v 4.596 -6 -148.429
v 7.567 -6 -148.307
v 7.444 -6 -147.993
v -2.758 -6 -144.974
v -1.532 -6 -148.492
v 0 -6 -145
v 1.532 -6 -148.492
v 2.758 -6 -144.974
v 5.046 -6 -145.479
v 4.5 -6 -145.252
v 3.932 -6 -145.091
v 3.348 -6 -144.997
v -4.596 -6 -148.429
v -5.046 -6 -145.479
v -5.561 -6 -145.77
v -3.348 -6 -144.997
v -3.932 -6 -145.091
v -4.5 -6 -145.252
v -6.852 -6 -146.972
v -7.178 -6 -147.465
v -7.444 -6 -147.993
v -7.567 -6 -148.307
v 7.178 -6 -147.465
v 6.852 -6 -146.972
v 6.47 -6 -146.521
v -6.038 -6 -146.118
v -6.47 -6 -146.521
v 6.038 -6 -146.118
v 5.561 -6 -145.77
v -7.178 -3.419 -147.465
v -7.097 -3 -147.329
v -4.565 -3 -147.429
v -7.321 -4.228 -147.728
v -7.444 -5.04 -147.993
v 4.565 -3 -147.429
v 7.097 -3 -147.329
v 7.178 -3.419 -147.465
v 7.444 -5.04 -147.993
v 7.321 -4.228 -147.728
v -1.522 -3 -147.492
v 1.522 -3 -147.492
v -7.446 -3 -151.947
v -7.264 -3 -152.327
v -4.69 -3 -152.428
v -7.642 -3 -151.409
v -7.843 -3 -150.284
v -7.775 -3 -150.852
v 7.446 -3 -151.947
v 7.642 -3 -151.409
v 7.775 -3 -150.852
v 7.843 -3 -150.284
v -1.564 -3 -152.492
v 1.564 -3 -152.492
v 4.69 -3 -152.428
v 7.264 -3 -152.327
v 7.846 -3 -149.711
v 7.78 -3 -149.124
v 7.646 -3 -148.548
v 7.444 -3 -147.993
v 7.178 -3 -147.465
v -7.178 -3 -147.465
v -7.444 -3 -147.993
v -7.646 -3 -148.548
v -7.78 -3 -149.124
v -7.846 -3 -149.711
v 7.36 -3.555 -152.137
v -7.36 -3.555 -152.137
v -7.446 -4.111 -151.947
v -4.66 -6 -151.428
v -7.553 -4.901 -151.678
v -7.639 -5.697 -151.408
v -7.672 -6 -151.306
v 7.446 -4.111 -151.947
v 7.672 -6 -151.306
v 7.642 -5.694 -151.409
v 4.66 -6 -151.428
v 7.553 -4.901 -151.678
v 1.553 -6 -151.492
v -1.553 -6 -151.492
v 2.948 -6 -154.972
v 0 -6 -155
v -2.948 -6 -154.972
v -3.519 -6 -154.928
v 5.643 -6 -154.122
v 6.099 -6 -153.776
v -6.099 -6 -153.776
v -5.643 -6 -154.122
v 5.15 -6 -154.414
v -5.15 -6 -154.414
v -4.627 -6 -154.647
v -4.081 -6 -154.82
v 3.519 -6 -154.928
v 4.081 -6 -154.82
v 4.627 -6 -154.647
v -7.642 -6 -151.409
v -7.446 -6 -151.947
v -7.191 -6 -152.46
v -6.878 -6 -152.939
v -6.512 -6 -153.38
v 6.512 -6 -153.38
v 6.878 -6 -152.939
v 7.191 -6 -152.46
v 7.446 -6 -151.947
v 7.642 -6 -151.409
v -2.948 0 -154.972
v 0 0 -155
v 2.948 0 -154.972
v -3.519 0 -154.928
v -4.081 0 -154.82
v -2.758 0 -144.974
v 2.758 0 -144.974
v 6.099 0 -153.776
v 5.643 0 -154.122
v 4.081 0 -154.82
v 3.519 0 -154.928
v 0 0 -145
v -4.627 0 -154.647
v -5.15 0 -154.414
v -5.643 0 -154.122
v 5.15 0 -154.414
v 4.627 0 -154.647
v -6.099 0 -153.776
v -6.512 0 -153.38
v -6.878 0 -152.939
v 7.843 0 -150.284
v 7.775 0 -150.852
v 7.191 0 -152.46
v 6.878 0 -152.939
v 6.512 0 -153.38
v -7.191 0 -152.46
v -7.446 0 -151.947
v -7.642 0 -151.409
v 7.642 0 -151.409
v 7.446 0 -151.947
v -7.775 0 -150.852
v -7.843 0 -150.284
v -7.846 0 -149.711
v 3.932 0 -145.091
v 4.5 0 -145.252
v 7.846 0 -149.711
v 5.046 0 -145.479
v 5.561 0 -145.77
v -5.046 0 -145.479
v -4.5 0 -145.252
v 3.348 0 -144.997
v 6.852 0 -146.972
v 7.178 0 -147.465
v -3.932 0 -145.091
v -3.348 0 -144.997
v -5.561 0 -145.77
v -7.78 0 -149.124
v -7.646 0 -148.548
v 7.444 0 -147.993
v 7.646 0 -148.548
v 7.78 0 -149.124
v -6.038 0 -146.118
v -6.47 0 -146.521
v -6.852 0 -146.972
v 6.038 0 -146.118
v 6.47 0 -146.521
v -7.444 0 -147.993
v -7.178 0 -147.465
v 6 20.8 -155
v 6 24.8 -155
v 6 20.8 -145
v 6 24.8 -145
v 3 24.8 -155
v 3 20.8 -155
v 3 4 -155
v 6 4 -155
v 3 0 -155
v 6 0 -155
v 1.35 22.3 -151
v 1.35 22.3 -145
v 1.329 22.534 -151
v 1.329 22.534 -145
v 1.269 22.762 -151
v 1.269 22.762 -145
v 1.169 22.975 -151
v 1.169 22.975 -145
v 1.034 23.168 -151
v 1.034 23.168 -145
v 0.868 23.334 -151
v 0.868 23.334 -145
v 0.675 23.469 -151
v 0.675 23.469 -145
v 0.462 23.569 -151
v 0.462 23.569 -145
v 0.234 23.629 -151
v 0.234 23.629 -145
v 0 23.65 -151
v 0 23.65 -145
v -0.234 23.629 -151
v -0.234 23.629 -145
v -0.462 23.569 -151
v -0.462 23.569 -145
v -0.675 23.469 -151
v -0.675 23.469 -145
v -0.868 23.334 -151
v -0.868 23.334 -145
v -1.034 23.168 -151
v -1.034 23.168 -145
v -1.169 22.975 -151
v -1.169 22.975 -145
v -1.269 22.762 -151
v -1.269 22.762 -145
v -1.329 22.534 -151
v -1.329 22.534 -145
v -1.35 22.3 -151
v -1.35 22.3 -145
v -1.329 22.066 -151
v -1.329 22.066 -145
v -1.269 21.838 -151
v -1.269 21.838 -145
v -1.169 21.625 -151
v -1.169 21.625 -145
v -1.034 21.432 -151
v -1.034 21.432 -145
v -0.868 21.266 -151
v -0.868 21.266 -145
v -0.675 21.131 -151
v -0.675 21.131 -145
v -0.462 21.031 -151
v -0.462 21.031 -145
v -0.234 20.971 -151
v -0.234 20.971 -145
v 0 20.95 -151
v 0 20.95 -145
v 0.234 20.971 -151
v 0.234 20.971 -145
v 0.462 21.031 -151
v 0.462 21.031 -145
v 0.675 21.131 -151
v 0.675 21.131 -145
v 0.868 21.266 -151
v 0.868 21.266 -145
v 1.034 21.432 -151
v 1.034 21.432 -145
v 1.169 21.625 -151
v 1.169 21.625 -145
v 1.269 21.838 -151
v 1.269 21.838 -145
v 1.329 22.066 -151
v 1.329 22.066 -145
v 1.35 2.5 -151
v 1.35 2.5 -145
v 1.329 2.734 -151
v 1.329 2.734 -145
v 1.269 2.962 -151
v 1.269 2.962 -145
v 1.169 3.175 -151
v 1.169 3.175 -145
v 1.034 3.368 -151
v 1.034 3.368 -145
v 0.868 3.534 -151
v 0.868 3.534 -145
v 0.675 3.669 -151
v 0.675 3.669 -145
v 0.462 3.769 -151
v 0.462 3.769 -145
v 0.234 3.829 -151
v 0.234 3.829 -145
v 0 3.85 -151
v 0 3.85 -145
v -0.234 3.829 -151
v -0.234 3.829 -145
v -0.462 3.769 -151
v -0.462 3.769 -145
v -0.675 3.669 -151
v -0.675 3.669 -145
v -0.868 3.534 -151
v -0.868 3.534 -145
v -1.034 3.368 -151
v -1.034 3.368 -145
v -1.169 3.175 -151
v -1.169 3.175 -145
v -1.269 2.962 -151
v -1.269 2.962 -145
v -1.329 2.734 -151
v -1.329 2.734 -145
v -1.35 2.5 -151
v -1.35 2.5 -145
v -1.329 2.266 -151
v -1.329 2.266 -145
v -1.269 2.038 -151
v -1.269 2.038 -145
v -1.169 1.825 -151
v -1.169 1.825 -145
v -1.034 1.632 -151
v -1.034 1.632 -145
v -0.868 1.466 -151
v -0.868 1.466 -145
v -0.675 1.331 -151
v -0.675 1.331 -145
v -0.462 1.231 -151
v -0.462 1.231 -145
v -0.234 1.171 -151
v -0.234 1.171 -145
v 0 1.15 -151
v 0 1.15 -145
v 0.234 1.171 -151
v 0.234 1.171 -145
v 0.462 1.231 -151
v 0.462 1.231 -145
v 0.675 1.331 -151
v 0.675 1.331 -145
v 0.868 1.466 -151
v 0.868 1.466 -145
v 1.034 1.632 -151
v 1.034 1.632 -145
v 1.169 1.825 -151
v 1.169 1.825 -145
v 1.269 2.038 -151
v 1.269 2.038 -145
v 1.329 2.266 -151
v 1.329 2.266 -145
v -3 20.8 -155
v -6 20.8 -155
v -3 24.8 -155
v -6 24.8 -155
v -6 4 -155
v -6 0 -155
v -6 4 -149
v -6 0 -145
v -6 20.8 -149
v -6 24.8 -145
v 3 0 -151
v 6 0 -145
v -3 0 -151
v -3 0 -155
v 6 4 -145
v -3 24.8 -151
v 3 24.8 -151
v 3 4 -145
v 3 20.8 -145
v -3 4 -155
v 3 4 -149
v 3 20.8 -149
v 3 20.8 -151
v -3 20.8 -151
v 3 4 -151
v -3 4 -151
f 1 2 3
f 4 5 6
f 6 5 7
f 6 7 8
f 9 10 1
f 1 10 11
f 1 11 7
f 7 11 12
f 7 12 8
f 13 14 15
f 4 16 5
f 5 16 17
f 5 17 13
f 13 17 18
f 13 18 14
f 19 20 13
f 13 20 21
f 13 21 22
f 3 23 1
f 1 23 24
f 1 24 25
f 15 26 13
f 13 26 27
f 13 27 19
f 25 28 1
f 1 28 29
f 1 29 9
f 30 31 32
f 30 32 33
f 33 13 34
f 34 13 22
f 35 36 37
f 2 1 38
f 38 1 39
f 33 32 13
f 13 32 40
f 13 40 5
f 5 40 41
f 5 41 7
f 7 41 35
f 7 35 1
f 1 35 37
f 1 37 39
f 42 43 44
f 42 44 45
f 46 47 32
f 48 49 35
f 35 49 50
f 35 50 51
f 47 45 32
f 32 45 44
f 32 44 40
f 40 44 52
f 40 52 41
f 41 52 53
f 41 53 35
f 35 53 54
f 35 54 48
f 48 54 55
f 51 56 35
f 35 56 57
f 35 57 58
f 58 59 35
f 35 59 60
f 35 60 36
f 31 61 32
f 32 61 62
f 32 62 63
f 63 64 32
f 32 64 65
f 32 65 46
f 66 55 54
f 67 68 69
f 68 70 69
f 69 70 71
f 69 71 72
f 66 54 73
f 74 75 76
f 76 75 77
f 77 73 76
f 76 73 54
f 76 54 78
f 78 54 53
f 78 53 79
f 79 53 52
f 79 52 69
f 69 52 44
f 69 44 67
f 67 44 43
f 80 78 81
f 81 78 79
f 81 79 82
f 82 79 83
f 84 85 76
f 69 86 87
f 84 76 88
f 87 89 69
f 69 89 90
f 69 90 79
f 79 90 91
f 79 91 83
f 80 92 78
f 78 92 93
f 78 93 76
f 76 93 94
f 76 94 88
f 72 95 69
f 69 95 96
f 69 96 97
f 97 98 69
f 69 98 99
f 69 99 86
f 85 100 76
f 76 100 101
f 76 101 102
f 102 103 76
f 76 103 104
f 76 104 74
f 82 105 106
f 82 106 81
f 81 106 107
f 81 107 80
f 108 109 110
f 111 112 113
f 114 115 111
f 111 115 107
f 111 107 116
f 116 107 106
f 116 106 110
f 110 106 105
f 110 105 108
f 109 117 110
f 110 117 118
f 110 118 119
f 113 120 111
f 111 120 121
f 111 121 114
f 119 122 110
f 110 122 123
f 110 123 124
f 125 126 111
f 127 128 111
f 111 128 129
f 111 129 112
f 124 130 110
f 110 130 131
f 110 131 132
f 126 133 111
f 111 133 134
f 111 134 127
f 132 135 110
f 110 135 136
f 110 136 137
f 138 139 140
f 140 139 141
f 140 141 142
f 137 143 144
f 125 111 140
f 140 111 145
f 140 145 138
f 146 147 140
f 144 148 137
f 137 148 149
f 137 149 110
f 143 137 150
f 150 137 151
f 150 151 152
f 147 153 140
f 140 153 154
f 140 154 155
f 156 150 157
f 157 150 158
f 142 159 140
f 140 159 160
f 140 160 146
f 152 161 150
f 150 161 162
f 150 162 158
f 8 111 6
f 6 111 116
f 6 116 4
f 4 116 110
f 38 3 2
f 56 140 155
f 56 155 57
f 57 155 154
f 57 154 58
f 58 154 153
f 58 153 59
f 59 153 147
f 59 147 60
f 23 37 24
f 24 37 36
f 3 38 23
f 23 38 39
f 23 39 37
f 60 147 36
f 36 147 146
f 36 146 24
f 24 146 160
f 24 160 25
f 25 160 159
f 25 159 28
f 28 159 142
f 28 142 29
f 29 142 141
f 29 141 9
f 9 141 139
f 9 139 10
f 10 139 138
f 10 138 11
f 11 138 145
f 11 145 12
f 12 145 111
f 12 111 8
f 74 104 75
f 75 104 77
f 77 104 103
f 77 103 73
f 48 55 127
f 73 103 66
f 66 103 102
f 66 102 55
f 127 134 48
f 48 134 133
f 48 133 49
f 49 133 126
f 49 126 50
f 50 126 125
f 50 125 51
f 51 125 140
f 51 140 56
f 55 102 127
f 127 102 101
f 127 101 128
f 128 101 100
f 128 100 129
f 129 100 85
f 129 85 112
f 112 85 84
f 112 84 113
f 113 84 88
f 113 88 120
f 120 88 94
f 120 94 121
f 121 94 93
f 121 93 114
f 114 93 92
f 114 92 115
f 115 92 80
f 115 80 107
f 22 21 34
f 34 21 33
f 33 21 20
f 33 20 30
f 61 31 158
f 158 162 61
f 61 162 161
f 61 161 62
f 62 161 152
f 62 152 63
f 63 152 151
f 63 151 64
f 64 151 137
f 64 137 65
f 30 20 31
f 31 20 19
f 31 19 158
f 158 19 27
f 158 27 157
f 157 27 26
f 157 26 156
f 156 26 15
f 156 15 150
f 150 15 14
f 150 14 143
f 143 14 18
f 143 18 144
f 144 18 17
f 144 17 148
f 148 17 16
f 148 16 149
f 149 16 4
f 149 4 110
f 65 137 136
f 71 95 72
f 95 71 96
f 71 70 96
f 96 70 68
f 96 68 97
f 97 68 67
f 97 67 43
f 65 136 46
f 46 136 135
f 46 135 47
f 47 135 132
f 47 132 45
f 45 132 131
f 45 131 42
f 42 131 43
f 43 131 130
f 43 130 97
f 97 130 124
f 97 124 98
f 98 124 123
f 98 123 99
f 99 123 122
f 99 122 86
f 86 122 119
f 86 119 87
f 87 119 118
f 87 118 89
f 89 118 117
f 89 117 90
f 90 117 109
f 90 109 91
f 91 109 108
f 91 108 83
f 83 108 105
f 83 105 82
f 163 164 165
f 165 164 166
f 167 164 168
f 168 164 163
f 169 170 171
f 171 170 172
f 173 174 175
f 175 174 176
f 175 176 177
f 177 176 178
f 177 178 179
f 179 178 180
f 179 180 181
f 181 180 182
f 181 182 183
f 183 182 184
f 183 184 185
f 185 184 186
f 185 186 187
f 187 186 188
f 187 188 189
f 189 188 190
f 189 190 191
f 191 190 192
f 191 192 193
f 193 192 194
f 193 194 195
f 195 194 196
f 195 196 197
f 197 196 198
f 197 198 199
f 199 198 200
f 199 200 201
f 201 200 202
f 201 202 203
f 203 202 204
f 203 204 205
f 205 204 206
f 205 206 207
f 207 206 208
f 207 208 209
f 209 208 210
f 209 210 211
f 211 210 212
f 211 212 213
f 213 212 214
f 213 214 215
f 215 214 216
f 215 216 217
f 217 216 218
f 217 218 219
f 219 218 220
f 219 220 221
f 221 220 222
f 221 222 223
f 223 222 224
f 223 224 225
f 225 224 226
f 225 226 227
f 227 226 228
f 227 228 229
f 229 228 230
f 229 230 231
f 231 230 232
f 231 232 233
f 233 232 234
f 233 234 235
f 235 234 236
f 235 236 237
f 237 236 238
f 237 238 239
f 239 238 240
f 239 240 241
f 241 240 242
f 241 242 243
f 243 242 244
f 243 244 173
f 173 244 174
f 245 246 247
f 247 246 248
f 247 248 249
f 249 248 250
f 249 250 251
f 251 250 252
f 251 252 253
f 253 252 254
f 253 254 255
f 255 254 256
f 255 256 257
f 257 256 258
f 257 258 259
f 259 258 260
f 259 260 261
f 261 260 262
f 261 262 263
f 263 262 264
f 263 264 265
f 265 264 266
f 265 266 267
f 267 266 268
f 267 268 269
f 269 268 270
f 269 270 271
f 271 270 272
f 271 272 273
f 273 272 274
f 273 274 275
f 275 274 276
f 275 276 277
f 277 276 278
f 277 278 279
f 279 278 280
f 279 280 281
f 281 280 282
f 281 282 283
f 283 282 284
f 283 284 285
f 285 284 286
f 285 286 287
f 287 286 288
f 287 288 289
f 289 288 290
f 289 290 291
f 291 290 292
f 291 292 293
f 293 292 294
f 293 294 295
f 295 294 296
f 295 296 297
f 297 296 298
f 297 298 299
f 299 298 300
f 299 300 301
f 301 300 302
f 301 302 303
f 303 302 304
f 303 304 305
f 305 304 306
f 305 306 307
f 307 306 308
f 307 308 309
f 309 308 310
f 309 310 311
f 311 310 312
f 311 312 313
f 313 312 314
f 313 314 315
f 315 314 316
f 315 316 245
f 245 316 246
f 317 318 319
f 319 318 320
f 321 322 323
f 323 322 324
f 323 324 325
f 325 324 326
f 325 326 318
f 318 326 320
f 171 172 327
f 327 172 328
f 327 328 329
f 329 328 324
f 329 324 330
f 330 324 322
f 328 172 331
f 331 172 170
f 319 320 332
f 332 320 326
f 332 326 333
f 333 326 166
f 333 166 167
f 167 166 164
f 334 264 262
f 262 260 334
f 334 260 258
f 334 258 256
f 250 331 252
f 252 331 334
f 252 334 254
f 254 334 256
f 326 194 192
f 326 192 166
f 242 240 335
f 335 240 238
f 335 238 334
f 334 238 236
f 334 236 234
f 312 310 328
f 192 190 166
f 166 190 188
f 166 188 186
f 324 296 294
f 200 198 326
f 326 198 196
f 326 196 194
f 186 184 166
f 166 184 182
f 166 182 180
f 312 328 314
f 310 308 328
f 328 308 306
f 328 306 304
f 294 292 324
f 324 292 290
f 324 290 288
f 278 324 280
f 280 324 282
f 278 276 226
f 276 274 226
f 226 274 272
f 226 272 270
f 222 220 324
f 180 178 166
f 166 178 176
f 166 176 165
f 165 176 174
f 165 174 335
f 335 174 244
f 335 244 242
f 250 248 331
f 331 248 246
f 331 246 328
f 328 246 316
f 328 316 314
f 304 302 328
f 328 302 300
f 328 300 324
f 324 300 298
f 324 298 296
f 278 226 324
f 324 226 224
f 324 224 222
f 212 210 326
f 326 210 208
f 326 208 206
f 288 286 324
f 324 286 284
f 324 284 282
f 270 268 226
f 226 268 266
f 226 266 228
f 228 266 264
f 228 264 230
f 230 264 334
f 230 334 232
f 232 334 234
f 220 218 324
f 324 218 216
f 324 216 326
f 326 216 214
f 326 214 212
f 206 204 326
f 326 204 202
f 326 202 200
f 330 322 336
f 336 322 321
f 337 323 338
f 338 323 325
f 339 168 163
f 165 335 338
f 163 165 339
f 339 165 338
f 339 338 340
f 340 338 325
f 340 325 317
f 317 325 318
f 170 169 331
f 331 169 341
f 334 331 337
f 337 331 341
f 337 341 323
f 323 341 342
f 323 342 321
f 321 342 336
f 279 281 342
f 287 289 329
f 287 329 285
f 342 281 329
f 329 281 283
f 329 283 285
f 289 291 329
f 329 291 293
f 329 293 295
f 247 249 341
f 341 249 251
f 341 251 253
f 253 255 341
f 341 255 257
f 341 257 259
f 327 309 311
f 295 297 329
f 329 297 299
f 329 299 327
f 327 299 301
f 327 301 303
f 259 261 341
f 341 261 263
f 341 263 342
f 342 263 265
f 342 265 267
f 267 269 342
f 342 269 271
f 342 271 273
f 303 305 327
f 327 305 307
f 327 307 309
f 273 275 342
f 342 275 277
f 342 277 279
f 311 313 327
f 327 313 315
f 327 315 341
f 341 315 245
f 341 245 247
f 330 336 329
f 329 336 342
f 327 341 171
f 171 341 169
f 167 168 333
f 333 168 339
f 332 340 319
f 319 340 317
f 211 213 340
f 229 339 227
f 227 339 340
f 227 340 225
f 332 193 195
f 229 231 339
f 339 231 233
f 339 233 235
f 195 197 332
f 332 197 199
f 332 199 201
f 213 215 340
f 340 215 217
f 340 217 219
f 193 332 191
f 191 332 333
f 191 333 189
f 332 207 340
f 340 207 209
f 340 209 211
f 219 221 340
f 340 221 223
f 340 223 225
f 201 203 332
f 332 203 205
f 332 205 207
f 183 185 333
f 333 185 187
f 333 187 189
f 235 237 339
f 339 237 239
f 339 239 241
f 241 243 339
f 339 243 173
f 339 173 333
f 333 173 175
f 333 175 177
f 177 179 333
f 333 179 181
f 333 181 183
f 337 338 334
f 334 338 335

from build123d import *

# Parameters (mm, degrees)
SKETCH7_W          = 12
SKETCH7_H          = 24.8
MAIN_DEPTH         = 5
SKETCH8_R          = 1.35
HOLES_DEPTH        = 28.405109013
SKETCH16_W         = 6
SKETCH16_H         = 16.8
FIXEXTRUSION_DEPTH = 158.429476274
SUPPORT_ANGLE      = 6
FILLET1_R          = 5
SKETCH17_W         = 6
SKETCH17_H         = 24.8
CUT_EXTRUDE1_DEPTH = 4
SKETCH18_W         = 3
SKETCH18_H         = 16.8
CUT_EXTRUDE2_DEPTH = 27.696588907


with BuildPart() as part:
    # Sketch7 → Main (new, symmetric)
    with BuildSketch(Plane.XY.offset(-150)):
        with Locations((0, 12.4)):
            Rectangle(SKETCH7_W, SKETCH7_H)
    extrude(amount=MAIN_DEPTH, both=True)

    # Sketch8 → Holes (cut, through all)
    with BuildSketch(Plane.XY.offset(-145)):
        with Locations((0, 22.3)):
            Circle(SKETCH8_R)
        with Locations((0, 2.5)):
            Circle(SKETCH8_R)
    extrude(amount=-HOLES_DEPTH, mode=Mode.SUBTRACT)

    # Sketch16 → FixExtrusion (cut, through all)
    with BuildSketch(Plane(origin=(6, 0, 0), x_dir=(0, 0, -1), z_dir=(1, 0, 0))):
        with Locations((152, 12.4)):
            Rectangle(SKETCH16_W, SKETCH16_H)
    extrude(amount=-FIXEXTRUSION_DEPTH, mode=Mode.SUBTRACT)

    # Sketch17 → Cut-Extrude1 (cut)
    with BuildSketch(Plane(origin=(0, 0, -155), x_dir=(-1, 0, 0), z_dir=(0, 0, -1))):
        with Locations((0, 12.4)):
            Rectangle(SKETCH17_W, SKETCH17_H)
    extrude(amount=-CUT_EXTRUDE1_DEPTH, mode=Mode.SUBTRACT)

    # Sketch18 → Cut-Extrude2 (cut, through all)
    with BuildSketch(Plane(origin=(0, 0, -149), x_dir=(-1, 0, 0), z_dir=(0, 0, -1))):
        with Locations((-4.5, 12.4)):
            Rectangle(SKETCH18_W, SKETCH18_H)
    extrude(amount=-CUT_EXTRUDE2_DEPTH, mode=Mode.SUBTRACT)


with BuildPart() as body_2:
    # Sketch10 → Support (revolve, symmetric)
    with BuildSketch(Plane(origin=(0, 0, 0), x_dir=(0, 0, -1), z_dir=(1, 0, 0))) as support_sk:
        Polygon((152.5, -3), (147.5, -3), (148.5, -6), (145, -6), (145, 0), (155, 0), (155, -6), (151.5, -6), align=None)
    revolve(axis=Axis((0, 11, 0), (0, -1, 0)), revolution_arc=SUPPORT_ANGLE / 2)
    revolve(support_sk.sketch, axis=Axis((0, 11, 0), (0, 1, 0)), revolution_arc=SUPPORT_ANGLE / 2)

    # Fillet1
    fillet1_edges = [body_2.edges().sort_by_distance(p)[0] for p in [
        (8.112073218, -3, -154.787577887),
        (-8.112073218, -3, -154.787577887),
        (7.588713655, -3, -144.801282539),
        (-7.588713655, -3, -144.801282539),
    ]]
    fillet(fillet1_edges, radius=FILLET1_R - 0.0001)  # a hair under: the kernel refuses the full size


solid = Compound([part.part, body_2.part])
